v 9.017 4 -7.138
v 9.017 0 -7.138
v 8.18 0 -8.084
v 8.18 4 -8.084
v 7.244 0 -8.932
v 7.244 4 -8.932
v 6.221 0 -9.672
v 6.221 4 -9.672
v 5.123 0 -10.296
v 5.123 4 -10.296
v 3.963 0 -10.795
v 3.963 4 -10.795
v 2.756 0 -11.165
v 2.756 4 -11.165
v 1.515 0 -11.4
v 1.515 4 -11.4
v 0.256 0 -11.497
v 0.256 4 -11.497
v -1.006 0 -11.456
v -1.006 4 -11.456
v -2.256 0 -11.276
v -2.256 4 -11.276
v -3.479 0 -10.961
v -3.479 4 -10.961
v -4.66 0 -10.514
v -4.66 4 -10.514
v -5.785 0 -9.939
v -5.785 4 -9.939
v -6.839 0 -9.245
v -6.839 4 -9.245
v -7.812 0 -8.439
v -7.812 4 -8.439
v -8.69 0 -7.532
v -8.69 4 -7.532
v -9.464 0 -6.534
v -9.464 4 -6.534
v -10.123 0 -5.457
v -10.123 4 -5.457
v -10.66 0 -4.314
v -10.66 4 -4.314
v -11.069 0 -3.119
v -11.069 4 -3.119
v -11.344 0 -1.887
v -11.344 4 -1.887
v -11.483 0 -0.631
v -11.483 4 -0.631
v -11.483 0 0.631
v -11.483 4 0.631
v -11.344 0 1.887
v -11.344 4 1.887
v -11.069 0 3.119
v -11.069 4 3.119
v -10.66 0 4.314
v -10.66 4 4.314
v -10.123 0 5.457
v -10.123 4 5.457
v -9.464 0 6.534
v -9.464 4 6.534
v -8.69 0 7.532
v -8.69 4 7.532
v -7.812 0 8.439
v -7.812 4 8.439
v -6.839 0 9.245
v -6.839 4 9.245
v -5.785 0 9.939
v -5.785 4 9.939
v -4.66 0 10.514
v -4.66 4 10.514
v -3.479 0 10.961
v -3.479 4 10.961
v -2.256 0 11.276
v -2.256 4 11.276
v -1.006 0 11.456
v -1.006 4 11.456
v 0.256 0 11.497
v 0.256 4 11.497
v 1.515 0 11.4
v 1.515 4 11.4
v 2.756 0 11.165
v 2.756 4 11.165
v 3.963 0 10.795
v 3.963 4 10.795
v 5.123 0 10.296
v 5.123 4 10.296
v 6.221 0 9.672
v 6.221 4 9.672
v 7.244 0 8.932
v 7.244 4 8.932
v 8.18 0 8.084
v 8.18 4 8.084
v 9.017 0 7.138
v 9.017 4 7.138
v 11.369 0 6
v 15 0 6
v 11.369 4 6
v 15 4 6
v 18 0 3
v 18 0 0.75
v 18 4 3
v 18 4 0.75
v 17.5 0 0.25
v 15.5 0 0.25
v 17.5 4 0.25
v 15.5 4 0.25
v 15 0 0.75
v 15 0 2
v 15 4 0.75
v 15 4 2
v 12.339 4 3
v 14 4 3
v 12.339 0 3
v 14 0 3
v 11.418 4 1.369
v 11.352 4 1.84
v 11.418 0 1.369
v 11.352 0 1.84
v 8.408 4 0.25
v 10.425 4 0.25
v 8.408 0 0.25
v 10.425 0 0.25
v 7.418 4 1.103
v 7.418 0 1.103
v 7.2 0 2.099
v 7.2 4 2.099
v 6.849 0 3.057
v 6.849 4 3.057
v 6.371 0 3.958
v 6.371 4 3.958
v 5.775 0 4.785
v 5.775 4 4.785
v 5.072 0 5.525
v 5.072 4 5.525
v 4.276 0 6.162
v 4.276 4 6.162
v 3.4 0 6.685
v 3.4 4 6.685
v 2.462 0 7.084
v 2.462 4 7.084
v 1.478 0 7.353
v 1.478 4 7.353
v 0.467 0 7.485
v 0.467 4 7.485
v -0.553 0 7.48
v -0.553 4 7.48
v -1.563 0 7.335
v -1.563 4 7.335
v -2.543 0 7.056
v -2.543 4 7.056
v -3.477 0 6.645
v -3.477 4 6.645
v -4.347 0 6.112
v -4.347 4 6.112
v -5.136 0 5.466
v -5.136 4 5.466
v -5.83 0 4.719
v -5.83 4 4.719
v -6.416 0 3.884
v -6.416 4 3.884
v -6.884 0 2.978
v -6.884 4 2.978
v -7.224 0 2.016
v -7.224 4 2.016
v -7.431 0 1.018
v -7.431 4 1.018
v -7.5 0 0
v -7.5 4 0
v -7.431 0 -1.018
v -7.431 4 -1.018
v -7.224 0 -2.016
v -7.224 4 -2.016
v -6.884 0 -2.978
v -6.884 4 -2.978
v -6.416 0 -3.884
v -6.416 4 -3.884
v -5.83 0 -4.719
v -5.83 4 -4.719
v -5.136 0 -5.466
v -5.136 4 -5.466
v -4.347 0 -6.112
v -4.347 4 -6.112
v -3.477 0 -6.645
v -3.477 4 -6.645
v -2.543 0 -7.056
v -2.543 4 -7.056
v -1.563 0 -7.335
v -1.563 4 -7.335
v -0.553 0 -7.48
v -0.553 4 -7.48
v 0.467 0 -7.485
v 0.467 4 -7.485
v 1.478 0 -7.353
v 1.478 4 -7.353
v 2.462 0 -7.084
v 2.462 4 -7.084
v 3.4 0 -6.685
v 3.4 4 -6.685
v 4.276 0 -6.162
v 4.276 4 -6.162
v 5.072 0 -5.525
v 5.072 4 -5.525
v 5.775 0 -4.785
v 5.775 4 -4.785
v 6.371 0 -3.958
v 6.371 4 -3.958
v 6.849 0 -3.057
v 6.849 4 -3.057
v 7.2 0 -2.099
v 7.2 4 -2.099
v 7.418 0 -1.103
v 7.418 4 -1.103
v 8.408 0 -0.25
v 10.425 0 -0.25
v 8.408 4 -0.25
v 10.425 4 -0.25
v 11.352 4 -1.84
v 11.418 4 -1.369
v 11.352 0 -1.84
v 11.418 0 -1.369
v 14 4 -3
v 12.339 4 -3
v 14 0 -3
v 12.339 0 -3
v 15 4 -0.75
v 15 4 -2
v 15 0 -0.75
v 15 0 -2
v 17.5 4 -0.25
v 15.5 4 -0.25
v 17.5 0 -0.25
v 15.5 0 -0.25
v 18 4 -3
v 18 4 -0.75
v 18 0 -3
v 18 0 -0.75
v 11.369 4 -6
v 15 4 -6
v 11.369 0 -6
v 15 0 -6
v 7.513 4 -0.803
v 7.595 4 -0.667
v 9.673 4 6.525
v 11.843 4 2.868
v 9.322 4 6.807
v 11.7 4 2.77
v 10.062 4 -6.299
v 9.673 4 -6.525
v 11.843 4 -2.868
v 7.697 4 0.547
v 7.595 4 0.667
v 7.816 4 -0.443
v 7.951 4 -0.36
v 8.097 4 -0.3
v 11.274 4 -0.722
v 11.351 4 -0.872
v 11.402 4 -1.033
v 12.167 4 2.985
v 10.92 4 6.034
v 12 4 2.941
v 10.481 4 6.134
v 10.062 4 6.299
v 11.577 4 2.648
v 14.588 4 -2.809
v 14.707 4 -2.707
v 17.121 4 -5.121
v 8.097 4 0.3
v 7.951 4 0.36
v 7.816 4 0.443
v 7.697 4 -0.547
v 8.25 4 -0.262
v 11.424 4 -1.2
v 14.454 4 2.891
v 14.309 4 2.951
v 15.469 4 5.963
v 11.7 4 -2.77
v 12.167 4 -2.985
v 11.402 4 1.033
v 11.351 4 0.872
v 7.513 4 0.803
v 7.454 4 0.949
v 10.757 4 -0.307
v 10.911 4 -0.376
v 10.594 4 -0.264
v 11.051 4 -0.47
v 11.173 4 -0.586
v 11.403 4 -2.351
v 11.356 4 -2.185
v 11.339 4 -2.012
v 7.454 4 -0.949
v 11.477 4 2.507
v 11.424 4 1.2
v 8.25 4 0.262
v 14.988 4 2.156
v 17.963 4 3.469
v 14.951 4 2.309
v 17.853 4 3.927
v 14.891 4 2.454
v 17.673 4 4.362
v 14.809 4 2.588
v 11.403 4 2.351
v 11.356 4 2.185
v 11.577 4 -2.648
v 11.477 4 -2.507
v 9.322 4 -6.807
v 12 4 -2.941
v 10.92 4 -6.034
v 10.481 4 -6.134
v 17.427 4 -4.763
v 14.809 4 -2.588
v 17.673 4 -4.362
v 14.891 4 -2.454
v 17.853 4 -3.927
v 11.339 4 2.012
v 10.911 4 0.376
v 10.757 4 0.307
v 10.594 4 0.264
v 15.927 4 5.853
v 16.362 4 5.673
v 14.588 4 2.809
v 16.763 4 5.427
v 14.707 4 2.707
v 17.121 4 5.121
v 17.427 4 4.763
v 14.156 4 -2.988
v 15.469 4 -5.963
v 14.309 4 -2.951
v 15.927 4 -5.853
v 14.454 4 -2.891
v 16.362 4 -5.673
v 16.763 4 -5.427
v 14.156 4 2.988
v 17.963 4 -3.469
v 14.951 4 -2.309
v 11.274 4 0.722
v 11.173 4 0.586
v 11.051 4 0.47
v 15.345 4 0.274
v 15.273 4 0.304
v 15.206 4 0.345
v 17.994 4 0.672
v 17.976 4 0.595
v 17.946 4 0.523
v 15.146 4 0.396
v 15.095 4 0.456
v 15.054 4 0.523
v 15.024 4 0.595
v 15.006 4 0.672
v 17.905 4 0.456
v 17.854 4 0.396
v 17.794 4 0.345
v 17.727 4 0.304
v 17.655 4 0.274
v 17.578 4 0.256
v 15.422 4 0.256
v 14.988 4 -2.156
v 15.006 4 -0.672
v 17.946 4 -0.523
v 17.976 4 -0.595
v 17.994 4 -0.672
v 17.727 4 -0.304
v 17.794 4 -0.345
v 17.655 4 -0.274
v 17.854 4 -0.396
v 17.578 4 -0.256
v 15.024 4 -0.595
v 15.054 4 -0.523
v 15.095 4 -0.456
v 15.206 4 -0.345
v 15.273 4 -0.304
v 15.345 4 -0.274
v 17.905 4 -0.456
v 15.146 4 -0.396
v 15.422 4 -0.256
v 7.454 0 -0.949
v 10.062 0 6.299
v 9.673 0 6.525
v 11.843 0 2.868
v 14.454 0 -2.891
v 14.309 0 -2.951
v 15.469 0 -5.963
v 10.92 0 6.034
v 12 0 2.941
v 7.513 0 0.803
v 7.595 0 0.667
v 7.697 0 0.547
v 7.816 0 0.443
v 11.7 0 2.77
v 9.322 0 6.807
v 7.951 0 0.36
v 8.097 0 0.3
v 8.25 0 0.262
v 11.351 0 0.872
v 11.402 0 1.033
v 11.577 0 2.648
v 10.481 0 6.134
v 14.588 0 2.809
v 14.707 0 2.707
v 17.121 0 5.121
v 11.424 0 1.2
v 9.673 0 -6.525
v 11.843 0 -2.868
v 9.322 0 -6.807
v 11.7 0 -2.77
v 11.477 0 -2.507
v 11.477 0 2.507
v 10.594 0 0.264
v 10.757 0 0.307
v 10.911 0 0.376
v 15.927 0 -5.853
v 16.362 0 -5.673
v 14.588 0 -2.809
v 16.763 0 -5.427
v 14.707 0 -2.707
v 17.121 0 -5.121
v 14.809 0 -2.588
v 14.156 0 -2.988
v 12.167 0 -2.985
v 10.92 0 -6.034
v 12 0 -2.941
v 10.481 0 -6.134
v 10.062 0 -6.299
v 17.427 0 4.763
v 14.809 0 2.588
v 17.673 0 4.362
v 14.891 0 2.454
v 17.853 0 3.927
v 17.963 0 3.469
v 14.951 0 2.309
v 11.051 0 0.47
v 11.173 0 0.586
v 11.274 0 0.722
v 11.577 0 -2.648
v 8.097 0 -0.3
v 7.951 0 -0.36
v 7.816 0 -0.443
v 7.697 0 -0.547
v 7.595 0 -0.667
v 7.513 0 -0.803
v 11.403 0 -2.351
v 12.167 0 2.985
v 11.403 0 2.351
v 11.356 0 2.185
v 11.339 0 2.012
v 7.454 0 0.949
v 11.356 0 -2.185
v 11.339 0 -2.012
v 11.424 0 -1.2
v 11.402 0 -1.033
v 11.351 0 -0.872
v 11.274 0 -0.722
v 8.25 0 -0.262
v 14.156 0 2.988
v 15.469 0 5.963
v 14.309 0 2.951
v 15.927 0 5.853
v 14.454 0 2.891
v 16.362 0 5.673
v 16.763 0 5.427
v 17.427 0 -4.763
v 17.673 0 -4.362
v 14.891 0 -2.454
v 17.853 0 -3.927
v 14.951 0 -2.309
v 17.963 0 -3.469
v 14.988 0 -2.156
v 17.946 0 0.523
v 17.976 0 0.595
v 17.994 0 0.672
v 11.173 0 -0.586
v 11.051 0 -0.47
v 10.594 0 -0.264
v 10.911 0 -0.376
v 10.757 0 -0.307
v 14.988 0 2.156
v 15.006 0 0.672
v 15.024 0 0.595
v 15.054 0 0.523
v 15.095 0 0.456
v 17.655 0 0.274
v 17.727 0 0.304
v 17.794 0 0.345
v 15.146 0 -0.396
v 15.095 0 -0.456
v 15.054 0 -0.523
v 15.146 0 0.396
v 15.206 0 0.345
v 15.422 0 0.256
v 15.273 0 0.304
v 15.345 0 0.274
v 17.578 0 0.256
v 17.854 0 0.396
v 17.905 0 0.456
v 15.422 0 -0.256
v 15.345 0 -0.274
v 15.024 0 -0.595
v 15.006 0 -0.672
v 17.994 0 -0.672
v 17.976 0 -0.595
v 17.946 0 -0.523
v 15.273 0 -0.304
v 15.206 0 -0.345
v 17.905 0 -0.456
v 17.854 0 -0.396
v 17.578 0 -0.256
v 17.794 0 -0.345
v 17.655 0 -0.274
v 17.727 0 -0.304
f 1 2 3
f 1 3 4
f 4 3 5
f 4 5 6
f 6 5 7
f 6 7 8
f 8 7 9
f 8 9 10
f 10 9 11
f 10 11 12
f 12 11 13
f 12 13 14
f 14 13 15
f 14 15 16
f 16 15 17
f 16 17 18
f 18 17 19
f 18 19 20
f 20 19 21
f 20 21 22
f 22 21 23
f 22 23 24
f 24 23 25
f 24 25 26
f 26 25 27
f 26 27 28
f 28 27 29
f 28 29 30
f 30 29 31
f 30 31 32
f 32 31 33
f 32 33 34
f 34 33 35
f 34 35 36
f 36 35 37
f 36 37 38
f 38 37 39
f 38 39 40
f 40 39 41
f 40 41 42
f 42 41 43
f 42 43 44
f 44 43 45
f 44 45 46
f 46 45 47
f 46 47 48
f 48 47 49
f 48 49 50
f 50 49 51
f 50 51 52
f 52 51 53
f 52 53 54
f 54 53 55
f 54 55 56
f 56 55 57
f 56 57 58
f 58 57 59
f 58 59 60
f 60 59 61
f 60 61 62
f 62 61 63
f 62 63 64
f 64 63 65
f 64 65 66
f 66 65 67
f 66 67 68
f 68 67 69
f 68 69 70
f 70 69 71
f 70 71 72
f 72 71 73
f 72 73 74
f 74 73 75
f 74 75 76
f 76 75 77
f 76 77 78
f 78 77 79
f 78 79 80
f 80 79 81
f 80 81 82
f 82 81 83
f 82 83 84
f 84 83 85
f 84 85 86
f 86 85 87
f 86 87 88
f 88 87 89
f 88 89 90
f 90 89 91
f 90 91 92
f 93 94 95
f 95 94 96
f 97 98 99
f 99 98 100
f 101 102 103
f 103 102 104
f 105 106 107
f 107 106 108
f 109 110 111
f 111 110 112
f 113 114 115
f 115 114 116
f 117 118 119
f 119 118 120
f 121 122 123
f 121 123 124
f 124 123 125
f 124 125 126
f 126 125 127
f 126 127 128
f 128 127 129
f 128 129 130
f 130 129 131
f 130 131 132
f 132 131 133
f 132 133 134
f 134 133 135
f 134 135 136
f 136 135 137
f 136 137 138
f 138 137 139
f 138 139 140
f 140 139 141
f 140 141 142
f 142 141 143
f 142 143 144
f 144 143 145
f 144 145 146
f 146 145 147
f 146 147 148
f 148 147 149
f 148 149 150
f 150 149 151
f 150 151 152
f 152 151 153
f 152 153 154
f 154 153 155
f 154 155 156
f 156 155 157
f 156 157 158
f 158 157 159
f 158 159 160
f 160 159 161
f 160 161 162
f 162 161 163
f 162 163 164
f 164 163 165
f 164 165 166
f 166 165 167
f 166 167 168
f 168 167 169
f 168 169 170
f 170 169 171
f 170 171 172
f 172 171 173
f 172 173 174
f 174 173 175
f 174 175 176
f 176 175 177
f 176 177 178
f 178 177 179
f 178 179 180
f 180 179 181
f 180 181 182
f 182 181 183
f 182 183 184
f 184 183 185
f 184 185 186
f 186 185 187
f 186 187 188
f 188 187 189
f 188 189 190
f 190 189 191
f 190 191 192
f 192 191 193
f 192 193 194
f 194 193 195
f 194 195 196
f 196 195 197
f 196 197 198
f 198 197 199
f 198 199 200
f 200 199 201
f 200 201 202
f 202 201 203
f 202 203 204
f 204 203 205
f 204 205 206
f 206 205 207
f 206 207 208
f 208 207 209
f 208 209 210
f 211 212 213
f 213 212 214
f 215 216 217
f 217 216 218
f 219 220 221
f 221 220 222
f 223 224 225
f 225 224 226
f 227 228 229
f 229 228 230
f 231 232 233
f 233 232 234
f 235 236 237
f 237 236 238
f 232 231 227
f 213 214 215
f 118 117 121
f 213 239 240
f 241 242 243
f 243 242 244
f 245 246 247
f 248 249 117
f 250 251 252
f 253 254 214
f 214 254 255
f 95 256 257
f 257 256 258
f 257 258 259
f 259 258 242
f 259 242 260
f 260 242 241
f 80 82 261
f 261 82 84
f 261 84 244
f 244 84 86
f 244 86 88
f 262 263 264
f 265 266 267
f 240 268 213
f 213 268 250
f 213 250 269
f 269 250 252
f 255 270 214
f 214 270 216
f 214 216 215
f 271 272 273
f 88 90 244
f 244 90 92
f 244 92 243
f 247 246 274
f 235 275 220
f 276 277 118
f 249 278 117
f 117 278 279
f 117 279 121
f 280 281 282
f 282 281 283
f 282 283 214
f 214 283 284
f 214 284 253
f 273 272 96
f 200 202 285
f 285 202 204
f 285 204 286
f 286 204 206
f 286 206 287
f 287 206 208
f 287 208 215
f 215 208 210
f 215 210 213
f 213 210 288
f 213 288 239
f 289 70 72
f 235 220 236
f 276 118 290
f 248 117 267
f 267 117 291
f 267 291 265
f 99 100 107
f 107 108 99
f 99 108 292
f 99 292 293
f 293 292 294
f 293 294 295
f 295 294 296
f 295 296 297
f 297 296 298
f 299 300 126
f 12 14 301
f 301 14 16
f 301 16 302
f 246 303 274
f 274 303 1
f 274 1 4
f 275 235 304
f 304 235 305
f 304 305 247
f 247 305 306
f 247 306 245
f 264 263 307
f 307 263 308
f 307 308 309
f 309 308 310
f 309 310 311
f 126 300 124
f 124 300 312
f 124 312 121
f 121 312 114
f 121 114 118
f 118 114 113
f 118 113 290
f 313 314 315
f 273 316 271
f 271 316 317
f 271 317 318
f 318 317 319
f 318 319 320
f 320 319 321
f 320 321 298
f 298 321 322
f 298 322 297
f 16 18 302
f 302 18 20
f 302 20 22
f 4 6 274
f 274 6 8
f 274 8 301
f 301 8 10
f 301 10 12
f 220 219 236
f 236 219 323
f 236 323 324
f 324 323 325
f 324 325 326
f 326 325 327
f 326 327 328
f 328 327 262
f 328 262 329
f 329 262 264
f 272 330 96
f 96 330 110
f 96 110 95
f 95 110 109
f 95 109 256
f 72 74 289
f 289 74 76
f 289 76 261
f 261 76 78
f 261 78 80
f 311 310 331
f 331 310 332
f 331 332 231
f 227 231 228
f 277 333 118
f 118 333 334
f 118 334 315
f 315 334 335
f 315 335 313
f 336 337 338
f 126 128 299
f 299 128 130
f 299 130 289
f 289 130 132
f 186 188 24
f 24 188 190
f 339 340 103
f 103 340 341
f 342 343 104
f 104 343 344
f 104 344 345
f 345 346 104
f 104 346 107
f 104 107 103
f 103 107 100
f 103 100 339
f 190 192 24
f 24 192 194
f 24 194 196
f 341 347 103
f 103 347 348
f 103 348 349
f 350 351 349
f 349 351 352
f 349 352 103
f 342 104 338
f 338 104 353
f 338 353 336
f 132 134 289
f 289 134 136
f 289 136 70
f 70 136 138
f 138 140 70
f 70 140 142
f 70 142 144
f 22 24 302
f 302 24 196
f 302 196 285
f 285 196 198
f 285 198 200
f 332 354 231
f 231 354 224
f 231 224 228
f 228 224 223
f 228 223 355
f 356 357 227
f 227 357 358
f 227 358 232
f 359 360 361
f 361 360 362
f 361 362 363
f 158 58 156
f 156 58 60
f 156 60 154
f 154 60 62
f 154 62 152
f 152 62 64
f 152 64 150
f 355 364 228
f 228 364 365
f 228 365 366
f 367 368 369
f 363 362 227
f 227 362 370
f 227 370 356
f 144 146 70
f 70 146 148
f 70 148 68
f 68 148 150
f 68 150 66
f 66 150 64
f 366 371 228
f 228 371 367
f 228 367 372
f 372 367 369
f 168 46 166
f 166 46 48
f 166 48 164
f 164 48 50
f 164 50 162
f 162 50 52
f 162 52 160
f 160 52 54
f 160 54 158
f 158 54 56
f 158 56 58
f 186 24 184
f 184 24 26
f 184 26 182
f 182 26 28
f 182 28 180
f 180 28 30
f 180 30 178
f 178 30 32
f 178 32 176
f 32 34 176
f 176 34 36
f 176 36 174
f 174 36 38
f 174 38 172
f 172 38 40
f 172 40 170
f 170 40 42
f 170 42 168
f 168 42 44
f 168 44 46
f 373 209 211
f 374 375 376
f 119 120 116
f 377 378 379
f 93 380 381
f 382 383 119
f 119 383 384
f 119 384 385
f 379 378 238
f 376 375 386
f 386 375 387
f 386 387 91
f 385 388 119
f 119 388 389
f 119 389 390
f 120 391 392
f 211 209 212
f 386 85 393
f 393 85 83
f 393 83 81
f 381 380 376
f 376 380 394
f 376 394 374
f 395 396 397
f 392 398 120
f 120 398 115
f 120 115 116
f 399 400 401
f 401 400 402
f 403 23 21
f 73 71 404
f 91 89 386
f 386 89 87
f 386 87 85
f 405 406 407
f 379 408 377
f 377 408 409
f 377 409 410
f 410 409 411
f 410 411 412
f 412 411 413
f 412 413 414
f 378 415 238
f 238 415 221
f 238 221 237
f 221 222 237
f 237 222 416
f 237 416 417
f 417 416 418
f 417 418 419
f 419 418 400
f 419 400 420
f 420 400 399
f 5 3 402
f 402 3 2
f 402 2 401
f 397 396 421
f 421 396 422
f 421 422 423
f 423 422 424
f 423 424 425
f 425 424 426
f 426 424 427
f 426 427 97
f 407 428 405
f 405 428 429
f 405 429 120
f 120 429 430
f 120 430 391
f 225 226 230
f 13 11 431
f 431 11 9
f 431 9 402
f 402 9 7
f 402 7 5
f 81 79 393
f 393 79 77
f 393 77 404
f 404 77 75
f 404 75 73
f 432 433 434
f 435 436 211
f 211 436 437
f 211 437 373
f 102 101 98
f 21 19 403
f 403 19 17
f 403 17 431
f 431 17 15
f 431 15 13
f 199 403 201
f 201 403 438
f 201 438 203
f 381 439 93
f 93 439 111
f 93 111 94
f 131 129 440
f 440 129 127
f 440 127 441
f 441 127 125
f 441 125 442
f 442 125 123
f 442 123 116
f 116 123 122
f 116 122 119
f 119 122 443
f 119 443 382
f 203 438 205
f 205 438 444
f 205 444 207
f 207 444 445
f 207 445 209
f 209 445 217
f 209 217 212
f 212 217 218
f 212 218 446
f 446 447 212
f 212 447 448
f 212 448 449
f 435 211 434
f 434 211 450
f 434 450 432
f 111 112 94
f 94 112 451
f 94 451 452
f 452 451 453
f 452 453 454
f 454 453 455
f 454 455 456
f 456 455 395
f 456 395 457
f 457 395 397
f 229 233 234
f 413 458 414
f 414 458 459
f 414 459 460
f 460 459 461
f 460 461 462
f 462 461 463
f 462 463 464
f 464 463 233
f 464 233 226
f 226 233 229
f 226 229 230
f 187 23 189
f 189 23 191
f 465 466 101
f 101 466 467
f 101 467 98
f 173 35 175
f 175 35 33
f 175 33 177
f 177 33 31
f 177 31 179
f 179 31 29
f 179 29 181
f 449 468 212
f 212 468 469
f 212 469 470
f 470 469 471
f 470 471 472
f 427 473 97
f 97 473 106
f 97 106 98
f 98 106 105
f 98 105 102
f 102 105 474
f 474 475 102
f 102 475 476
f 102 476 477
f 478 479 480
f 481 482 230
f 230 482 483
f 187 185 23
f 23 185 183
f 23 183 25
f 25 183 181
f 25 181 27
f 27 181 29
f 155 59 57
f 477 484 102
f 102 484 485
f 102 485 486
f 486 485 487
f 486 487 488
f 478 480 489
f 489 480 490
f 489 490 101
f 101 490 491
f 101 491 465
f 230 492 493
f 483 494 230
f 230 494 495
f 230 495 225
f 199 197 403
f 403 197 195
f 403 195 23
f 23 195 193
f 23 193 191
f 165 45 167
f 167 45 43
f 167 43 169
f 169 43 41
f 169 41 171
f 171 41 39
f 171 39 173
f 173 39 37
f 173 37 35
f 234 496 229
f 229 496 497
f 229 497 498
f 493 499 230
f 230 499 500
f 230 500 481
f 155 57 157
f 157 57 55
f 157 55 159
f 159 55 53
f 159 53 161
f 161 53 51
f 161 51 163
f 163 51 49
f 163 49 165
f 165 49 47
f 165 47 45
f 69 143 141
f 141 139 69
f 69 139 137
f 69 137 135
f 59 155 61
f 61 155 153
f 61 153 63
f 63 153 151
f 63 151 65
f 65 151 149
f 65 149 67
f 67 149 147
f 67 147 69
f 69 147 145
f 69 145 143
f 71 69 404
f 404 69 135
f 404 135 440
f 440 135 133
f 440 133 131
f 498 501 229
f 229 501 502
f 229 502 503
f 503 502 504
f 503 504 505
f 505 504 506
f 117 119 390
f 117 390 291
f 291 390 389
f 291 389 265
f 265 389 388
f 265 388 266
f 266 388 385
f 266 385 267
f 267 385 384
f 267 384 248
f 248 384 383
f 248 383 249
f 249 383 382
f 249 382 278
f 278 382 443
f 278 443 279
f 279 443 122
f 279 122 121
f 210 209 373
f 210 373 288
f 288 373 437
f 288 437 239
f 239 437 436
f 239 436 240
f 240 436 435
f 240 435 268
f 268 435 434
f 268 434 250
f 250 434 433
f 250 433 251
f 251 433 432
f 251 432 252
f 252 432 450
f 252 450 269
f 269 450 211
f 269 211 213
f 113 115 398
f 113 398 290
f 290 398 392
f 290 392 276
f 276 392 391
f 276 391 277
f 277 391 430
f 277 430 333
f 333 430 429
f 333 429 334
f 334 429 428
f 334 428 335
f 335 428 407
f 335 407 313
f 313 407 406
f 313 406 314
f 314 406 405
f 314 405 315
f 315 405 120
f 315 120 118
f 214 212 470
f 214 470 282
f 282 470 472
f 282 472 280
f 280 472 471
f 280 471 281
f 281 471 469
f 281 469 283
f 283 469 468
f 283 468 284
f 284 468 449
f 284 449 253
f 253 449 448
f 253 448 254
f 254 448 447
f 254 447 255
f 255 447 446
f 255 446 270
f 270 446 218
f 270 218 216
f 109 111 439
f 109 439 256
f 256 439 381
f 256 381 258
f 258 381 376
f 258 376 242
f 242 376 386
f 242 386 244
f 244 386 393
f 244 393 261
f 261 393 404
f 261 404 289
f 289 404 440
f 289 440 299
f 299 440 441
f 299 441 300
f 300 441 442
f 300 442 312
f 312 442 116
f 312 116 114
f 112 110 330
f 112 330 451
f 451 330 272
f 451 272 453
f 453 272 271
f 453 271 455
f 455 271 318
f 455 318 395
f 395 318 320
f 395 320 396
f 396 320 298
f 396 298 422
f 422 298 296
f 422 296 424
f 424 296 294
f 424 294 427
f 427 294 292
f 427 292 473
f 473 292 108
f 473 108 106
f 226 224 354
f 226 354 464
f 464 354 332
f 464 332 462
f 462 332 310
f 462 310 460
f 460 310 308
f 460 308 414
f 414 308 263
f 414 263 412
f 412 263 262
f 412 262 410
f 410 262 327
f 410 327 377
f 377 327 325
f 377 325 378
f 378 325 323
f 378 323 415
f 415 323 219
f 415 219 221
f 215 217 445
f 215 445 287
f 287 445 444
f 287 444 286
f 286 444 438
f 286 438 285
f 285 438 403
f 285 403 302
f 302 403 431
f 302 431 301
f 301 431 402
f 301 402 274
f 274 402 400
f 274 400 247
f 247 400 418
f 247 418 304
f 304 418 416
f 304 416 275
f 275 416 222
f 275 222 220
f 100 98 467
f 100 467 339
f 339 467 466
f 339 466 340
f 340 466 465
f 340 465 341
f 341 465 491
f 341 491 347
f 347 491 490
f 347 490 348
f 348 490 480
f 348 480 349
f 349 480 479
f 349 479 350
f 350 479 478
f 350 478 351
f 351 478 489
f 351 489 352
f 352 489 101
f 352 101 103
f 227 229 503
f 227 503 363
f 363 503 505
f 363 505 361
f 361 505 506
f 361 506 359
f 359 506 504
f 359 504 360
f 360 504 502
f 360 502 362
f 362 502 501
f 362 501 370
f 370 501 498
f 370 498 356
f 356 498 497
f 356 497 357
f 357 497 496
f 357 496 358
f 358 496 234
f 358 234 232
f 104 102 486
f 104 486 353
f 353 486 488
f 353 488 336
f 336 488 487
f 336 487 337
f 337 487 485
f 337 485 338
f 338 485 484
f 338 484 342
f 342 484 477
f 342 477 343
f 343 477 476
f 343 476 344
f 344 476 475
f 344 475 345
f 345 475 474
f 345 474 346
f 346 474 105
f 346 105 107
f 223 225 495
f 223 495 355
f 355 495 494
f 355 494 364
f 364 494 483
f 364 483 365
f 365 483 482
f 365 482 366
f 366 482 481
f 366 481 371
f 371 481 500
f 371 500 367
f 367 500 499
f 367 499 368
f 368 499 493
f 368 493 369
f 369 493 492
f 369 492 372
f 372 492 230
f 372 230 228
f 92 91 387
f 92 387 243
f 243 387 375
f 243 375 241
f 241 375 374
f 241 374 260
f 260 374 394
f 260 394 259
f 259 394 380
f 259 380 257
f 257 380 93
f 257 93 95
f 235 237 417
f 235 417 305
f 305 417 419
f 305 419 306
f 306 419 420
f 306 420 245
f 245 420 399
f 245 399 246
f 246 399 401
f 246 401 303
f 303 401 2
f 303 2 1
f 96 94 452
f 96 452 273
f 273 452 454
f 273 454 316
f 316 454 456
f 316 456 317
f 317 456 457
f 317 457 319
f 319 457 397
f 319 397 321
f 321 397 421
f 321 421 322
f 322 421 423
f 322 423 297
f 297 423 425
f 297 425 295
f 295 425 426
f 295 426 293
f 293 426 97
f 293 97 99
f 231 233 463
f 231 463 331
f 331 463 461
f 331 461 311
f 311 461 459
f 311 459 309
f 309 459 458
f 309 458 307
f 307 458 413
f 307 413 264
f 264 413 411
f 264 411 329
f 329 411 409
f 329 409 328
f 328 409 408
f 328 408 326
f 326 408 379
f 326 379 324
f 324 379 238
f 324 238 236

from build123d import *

# Parameters (mm, degrees)
BOSS_EXTRUDE1_DEPTH = 4
FILLET1_R           = 1
FILLET2_R           = 1
FILLET3_R           = 0.5
FILLET4_R           = 3


with BuildPart() as part:
    # Sketch1 → Boss-Extrude1 (new body)
    with BuildSketch(Plane(origin=(0, 0, 0), x_dir=(1, 0, 0), z_dir=(0, 1, 0))):
        with BuildLine():
            Line((9.810708435, 6), (18, 6))
            Line((18, 6), (18, 0.25))
            Line((18, 0.25), (15, 0.25))
            Line((15, 0.25), (15, 3))
            Line((15, 3), (11.101801656, 3))
            ThreePointArc((11.101801656, 3), (11.38289391, 1.636986937), (11.497282288, 0.25))
            Line((11.497282288, 0.25), (7.495832175, 0.25))
            ThreePointArc((7.495832175, 0.25), (-7.5, 0), (7.495832175, -0.25))
            Line((7.495832175, -0.25), (11.497282288, -0.25))
            ThreePointArc((11.497282288, -0.25), (11.38289391, -1.636986937), (11.101801656, -3))
            Line((11.101801656, -3), (15, -3))
            Line((15, -3), (15, -0.25))
            Line((15, -0.25), (18, -0.25))
            Line((18, -0.25), (18, -6))
            Line((18, -6), (9.810708435, -6))
            ThreePointArc((9.810708435, -6), (-11.5, 0), (9.810708435, 6))
        make_face()
    extrude(amount=BOSS_EXTRUDE1_DEPTH)

    # Fillet1
    fillet1_edges = [part.edges().sort_by_distance(p)[0] for p in [
        (11.497282288, 2, -0.25),
        (7.495832175, 2, -0.25),
        (7.495832175, 2, 0.25),
        (11.497282288, 2, 0.25),
    ]]
    fillet(fillet1_edges, radius=FILLET1_R)

    # Fillet2
    fillet2_edges = [part.edges().sort_by_distance(p)[0] for p in [
        (15, 2, -3),
        (11.101801656, 2, -3),
        (11.101801656, 2, 3),
        (15, 2, 3),
    ]]
    fillet(fillet2_edges, radius=FILLET2_R)

    # Fillet3
    fillet3_edges = [part.edges().sort_by_distance(p)[0] for p in [
        (18, 2, -0.25),
        (15, 2, -0.25),
        (15, 2, 0.25),
        (18, 2, 0.25),
    ]]
    fillet(fillet3_edges, radius=FILLET3_R)

    # Fillet4
    fillet4_edges = [part.edges().sort_by_distance(p)[0] for p in [
        (9.810708435, 2, -6),
        (18, 2, -6),
        (18, 2, 6),
        (9.810708435, 2, 6),
    ]]
    fillet(fillet4_edges, radius=FILLET4_R)


solid = part.part
